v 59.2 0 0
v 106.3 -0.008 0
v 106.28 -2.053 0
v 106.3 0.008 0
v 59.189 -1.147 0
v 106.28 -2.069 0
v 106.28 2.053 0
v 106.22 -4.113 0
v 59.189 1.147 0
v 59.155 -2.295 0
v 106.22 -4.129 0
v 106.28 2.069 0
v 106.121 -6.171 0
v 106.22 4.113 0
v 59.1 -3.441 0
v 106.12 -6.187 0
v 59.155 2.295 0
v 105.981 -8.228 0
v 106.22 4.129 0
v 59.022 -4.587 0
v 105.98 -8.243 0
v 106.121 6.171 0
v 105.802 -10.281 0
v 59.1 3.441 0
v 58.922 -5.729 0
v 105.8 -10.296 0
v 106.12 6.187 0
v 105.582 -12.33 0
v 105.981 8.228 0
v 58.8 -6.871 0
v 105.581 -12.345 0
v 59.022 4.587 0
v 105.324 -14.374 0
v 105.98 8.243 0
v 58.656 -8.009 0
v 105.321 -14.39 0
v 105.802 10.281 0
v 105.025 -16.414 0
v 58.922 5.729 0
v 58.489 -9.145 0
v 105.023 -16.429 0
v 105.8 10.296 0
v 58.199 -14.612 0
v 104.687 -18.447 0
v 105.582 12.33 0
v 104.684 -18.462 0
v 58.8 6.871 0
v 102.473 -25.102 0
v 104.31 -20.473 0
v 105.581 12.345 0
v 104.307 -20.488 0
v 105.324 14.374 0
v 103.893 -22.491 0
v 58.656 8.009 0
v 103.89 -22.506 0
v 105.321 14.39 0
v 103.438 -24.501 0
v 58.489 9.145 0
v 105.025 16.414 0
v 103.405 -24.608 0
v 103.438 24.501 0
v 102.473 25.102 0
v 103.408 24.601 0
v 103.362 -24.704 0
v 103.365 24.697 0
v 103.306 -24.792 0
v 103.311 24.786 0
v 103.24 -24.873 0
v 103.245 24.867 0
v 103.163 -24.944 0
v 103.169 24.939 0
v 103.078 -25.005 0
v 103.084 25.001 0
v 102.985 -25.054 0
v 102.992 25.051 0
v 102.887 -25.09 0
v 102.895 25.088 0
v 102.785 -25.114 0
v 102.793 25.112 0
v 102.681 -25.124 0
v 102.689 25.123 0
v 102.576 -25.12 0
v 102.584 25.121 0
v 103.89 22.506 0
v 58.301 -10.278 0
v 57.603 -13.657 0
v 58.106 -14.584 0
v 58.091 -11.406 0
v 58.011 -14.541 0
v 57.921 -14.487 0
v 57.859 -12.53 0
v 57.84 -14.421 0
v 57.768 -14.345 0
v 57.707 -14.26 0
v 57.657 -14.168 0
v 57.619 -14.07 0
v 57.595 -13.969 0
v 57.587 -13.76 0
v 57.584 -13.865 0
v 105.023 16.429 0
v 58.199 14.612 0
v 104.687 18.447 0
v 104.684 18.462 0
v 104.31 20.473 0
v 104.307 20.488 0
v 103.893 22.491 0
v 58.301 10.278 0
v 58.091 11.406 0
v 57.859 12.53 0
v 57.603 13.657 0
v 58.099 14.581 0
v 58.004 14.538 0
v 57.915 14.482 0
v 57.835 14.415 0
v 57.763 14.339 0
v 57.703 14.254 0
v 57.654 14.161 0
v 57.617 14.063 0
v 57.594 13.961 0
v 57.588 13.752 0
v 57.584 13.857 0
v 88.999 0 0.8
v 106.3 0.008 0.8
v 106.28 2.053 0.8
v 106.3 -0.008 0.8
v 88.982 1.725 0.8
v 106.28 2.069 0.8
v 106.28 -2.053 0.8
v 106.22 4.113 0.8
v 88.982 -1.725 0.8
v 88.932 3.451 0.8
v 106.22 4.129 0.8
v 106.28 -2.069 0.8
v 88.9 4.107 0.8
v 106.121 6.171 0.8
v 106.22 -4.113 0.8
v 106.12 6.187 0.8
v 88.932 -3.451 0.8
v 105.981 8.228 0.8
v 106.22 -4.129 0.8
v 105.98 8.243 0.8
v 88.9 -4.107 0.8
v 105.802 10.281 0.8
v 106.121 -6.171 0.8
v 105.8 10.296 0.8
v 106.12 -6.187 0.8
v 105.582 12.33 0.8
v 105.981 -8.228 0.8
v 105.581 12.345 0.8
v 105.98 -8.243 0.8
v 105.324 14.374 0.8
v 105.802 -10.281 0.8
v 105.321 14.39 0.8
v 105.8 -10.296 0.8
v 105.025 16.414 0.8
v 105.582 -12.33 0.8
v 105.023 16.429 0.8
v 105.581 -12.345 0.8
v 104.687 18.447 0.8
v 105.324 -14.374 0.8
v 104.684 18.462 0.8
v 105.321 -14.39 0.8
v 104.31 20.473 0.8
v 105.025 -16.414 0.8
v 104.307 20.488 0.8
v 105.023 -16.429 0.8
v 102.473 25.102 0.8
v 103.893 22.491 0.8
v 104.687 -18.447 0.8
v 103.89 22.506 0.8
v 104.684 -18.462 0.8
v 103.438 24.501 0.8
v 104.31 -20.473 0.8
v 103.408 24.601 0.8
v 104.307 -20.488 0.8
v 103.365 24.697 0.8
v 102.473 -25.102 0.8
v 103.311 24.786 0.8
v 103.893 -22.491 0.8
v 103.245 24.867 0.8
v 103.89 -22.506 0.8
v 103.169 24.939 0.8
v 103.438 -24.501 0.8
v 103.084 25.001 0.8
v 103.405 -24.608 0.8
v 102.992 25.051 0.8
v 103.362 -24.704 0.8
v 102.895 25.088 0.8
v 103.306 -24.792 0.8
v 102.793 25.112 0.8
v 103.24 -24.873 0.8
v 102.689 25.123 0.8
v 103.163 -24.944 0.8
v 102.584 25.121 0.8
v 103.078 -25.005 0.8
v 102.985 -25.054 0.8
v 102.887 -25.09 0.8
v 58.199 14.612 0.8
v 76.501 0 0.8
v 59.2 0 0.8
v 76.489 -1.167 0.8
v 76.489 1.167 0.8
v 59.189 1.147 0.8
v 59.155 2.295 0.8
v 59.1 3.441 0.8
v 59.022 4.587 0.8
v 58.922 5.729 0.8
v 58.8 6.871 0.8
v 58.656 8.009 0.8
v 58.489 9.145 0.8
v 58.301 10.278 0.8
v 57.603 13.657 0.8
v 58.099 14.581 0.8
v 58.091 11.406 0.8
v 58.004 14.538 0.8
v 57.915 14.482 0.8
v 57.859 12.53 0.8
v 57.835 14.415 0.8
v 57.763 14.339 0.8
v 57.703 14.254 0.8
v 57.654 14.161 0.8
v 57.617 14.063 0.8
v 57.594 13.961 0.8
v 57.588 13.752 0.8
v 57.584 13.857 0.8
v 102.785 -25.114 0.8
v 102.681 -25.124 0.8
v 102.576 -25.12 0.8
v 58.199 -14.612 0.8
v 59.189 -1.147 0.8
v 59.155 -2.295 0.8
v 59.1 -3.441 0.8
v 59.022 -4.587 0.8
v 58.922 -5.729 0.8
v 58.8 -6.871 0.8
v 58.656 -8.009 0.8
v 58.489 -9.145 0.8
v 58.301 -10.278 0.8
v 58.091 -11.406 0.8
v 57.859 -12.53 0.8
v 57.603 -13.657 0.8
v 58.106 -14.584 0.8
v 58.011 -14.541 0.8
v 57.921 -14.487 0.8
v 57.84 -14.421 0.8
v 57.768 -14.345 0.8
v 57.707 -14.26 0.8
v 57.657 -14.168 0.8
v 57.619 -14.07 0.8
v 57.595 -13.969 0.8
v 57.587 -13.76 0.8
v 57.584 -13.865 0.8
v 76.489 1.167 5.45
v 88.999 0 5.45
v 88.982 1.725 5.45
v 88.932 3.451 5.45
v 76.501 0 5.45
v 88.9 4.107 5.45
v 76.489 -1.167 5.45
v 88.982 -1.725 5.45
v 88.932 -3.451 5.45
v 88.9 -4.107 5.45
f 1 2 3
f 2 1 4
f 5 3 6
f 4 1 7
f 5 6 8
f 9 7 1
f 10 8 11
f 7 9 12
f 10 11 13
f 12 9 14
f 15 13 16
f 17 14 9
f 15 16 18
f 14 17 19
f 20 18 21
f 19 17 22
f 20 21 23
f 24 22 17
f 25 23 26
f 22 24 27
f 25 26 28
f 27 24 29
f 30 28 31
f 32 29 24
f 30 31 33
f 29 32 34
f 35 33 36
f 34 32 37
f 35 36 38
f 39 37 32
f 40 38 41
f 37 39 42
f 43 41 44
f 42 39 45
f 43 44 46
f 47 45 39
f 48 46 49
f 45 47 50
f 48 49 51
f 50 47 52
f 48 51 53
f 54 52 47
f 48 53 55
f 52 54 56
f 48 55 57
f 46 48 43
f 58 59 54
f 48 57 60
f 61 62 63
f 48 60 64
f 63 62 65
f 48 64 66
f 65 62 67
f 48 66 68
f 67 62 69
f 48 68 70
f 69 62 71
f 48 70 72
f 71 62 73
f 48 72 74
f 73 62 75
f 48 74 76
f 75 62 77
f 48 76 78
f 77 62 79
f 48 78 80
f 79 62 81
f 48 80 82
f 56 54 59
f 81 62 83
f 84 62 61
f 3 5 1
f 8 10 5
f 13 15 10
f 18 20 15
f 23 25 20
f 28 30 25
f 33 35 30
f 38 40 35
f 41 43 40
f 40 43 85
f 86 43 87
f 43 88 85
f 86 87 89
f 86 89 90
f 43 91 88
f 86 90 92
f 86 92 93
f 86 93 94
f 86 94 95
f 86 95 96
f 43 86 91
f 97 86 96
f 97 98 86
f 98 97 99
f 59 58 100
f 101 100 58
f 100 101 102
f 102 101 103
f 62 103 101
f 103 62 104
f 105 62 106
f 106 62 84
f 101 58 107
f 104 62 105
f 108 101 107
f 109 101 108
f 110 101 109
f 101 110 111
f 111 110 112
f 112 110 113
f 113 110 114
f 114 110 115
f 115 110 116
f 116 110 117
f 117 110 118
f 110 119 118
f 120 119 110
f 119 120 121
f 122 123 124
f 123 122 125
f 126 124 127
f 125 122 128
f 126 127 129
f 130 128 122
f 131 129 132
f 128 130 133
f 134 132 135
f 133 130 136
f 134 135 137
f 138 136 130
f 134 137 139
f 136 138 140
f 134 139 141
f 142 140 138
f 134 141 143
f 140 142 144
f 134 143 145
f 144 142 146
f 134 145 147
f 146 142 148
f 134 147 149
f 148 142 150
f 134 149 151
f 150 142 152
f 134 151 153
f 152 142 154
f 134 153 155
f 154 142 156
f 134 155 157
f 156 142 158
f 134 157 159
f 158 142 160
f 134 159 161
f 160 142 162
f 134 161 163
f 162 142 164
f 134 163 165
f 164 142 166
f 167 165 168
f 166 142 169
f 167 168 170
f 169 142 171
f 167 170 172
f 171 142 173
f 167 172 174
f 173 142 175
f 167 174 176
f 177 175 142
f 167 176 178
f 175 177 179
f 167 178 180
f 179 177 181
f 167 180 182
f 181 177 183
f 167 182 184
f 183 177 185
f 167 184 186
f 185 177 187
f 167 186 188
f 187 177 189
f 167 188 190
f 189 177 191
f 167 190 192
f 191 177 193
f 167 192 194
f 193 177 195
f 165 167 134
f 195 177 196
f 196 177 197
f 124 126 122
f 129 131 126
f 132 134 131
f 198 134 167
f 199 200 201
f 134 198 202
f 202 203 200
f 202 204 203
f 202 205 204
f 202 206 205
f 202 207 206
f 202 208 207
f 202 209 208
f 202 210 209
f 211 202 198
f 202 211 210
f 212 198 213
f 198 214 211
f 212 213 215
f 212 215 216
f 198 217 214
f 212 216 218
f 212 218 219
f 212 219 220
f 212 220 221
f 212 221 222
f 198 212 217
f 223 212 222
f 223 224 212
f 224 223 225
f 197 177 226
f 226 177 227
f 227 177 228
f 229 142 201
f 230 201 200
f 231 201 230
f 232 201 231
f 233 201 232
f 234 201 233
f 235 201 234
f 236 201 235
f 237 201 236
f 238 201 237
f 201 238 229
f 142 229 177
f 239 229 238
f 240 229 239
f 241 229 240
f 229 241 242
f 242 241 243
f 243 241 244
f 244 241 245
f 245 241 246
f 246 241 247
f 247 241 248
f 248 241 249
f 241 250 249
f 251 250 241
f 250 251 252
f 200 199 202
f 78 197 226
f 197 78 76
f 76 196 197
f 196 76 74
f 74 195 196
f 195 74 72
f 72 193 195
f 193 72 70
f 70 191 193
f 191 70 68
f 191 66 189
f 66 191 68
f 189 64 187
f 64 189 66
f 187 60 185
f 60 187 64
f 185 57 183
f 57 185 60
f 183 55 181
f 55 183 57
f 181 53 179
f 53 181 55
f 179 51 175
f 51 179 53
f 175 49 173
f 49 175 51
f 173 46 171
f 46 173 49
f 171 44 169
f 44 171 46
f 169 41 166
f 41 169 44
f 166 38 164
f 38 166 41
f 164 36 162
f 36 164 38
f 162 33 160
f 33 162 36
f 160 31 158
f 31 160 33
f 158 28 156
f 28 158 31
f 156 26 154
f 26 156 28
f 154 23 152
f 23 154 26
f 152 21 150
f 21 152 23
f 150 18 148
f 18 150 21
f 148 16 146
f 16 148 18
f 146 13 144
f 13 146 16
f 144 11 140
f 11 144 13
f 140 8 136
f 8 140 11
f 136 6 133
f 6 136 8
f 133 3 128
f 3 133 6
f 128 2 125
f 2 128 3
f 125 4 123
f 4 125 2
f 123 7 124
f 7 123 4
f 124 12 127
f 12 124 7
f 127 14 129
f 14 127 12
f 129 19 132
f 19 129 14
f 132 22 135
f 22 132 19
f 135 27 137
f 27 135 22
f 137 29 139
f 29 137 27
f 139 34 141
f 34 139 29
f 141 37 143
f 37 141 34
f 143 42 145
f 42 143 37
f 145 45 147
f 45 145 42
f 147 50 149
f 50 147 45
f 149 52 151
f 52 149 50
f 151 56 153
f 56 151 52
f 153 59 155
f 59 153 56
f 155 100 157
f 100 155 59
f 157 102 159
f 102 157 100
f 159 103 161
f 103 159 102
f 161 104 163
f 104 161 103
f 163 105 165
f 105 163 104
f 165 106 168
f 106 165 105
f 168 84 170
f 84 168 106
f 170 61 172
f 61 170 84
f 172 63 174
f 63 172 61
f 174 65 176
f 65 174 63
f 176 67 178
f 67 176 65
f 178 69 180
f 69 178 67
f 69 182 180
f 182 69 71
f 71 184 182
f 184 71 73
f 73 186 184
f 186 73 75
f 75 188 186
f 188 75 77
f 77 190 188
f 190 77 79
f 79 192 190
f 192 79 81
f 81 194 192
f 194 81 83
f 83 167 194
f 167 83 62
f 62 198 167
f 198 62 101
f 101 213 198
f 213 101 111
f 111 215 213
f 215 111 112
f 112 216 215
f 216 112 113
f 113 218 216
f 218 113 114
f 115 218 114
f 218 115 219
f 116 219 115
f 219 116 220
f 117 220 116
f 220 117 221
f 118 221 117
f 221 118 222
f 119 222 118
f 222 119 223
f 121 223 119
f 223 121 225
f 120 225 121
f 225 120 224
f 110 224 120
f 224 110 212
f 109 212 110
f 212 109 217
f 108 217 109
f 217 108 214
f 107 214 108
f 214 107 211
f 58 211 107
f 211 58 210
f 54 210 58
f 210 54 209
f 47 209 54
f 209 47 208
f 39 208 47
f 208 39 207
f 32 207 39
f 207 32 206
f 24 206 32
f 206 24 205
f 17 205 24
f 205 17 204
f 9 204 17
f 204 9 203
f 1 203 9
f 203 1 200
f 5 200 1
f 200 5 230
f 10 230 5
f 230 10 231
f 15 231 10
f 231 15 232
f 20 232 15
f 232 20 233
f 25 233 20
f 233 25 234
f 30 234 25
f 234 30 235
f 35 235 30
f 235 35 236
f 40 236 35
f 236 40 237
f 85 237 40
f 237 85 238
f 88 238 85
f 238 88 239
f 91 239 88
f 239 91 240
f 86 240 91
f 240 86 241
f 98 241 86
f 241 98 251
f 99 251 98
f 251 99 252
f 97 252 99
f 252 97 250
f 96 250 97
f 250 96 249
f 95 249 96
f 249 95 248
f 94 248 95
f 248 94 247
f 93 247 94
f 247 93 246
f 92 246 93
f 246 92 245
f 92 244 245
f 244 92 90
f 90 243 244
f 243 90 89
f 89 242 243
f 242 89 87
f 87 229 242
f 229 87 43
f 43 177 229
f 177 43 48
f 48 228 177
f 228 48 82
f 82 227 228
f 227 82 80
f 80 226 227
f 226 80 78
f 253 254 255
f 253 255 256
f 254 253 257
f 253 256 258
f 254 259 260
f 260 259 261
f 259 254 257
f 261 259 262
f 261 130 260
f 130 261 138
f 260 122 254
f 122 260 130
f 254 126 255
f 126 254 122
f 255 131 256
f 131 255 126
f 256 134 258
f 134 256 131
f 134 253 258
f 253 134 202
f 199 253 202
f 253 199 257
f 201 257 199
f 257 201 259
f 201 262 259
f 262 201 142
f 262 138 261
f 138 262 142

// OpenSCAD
// Gen-CR — bobbin BASE (bottom flange + hub). Print x12, flange down. Wind 26 AWG x 313 t around
// the hub with the LID glued on (coil_lid.stl). Copper lives ONLY between the flanges (no proud winds).
include <parameters.scad>;
$fn = 48;
module sector_2d(r_in, r_out, ang) {
    polygon([
        for (a = [-ang/2 : ang/24 : ang/2]) [r_in*cos(a), r_in*sin(a)],
        for (a = [ang/2 : -ang/24 : -ang/2]) [r_out*cos(a), r_out*sin(a)]
    ]);
}
module footprint_2d() { offset(r=wall) sector_2d(coil_id_r, coil_od_r, span_deg); }
module hub_2d()       { offset(delta=-coil_core_inset) sector_2d(coil_id_r, coil_od_r, span_deg); }

union() {
    linear_extrude(flange_t) footprint_2d();
    translate([0, 0, flange_t - 0.01]) linear_extrude(former_web + 0.01) hub_2d();
}
